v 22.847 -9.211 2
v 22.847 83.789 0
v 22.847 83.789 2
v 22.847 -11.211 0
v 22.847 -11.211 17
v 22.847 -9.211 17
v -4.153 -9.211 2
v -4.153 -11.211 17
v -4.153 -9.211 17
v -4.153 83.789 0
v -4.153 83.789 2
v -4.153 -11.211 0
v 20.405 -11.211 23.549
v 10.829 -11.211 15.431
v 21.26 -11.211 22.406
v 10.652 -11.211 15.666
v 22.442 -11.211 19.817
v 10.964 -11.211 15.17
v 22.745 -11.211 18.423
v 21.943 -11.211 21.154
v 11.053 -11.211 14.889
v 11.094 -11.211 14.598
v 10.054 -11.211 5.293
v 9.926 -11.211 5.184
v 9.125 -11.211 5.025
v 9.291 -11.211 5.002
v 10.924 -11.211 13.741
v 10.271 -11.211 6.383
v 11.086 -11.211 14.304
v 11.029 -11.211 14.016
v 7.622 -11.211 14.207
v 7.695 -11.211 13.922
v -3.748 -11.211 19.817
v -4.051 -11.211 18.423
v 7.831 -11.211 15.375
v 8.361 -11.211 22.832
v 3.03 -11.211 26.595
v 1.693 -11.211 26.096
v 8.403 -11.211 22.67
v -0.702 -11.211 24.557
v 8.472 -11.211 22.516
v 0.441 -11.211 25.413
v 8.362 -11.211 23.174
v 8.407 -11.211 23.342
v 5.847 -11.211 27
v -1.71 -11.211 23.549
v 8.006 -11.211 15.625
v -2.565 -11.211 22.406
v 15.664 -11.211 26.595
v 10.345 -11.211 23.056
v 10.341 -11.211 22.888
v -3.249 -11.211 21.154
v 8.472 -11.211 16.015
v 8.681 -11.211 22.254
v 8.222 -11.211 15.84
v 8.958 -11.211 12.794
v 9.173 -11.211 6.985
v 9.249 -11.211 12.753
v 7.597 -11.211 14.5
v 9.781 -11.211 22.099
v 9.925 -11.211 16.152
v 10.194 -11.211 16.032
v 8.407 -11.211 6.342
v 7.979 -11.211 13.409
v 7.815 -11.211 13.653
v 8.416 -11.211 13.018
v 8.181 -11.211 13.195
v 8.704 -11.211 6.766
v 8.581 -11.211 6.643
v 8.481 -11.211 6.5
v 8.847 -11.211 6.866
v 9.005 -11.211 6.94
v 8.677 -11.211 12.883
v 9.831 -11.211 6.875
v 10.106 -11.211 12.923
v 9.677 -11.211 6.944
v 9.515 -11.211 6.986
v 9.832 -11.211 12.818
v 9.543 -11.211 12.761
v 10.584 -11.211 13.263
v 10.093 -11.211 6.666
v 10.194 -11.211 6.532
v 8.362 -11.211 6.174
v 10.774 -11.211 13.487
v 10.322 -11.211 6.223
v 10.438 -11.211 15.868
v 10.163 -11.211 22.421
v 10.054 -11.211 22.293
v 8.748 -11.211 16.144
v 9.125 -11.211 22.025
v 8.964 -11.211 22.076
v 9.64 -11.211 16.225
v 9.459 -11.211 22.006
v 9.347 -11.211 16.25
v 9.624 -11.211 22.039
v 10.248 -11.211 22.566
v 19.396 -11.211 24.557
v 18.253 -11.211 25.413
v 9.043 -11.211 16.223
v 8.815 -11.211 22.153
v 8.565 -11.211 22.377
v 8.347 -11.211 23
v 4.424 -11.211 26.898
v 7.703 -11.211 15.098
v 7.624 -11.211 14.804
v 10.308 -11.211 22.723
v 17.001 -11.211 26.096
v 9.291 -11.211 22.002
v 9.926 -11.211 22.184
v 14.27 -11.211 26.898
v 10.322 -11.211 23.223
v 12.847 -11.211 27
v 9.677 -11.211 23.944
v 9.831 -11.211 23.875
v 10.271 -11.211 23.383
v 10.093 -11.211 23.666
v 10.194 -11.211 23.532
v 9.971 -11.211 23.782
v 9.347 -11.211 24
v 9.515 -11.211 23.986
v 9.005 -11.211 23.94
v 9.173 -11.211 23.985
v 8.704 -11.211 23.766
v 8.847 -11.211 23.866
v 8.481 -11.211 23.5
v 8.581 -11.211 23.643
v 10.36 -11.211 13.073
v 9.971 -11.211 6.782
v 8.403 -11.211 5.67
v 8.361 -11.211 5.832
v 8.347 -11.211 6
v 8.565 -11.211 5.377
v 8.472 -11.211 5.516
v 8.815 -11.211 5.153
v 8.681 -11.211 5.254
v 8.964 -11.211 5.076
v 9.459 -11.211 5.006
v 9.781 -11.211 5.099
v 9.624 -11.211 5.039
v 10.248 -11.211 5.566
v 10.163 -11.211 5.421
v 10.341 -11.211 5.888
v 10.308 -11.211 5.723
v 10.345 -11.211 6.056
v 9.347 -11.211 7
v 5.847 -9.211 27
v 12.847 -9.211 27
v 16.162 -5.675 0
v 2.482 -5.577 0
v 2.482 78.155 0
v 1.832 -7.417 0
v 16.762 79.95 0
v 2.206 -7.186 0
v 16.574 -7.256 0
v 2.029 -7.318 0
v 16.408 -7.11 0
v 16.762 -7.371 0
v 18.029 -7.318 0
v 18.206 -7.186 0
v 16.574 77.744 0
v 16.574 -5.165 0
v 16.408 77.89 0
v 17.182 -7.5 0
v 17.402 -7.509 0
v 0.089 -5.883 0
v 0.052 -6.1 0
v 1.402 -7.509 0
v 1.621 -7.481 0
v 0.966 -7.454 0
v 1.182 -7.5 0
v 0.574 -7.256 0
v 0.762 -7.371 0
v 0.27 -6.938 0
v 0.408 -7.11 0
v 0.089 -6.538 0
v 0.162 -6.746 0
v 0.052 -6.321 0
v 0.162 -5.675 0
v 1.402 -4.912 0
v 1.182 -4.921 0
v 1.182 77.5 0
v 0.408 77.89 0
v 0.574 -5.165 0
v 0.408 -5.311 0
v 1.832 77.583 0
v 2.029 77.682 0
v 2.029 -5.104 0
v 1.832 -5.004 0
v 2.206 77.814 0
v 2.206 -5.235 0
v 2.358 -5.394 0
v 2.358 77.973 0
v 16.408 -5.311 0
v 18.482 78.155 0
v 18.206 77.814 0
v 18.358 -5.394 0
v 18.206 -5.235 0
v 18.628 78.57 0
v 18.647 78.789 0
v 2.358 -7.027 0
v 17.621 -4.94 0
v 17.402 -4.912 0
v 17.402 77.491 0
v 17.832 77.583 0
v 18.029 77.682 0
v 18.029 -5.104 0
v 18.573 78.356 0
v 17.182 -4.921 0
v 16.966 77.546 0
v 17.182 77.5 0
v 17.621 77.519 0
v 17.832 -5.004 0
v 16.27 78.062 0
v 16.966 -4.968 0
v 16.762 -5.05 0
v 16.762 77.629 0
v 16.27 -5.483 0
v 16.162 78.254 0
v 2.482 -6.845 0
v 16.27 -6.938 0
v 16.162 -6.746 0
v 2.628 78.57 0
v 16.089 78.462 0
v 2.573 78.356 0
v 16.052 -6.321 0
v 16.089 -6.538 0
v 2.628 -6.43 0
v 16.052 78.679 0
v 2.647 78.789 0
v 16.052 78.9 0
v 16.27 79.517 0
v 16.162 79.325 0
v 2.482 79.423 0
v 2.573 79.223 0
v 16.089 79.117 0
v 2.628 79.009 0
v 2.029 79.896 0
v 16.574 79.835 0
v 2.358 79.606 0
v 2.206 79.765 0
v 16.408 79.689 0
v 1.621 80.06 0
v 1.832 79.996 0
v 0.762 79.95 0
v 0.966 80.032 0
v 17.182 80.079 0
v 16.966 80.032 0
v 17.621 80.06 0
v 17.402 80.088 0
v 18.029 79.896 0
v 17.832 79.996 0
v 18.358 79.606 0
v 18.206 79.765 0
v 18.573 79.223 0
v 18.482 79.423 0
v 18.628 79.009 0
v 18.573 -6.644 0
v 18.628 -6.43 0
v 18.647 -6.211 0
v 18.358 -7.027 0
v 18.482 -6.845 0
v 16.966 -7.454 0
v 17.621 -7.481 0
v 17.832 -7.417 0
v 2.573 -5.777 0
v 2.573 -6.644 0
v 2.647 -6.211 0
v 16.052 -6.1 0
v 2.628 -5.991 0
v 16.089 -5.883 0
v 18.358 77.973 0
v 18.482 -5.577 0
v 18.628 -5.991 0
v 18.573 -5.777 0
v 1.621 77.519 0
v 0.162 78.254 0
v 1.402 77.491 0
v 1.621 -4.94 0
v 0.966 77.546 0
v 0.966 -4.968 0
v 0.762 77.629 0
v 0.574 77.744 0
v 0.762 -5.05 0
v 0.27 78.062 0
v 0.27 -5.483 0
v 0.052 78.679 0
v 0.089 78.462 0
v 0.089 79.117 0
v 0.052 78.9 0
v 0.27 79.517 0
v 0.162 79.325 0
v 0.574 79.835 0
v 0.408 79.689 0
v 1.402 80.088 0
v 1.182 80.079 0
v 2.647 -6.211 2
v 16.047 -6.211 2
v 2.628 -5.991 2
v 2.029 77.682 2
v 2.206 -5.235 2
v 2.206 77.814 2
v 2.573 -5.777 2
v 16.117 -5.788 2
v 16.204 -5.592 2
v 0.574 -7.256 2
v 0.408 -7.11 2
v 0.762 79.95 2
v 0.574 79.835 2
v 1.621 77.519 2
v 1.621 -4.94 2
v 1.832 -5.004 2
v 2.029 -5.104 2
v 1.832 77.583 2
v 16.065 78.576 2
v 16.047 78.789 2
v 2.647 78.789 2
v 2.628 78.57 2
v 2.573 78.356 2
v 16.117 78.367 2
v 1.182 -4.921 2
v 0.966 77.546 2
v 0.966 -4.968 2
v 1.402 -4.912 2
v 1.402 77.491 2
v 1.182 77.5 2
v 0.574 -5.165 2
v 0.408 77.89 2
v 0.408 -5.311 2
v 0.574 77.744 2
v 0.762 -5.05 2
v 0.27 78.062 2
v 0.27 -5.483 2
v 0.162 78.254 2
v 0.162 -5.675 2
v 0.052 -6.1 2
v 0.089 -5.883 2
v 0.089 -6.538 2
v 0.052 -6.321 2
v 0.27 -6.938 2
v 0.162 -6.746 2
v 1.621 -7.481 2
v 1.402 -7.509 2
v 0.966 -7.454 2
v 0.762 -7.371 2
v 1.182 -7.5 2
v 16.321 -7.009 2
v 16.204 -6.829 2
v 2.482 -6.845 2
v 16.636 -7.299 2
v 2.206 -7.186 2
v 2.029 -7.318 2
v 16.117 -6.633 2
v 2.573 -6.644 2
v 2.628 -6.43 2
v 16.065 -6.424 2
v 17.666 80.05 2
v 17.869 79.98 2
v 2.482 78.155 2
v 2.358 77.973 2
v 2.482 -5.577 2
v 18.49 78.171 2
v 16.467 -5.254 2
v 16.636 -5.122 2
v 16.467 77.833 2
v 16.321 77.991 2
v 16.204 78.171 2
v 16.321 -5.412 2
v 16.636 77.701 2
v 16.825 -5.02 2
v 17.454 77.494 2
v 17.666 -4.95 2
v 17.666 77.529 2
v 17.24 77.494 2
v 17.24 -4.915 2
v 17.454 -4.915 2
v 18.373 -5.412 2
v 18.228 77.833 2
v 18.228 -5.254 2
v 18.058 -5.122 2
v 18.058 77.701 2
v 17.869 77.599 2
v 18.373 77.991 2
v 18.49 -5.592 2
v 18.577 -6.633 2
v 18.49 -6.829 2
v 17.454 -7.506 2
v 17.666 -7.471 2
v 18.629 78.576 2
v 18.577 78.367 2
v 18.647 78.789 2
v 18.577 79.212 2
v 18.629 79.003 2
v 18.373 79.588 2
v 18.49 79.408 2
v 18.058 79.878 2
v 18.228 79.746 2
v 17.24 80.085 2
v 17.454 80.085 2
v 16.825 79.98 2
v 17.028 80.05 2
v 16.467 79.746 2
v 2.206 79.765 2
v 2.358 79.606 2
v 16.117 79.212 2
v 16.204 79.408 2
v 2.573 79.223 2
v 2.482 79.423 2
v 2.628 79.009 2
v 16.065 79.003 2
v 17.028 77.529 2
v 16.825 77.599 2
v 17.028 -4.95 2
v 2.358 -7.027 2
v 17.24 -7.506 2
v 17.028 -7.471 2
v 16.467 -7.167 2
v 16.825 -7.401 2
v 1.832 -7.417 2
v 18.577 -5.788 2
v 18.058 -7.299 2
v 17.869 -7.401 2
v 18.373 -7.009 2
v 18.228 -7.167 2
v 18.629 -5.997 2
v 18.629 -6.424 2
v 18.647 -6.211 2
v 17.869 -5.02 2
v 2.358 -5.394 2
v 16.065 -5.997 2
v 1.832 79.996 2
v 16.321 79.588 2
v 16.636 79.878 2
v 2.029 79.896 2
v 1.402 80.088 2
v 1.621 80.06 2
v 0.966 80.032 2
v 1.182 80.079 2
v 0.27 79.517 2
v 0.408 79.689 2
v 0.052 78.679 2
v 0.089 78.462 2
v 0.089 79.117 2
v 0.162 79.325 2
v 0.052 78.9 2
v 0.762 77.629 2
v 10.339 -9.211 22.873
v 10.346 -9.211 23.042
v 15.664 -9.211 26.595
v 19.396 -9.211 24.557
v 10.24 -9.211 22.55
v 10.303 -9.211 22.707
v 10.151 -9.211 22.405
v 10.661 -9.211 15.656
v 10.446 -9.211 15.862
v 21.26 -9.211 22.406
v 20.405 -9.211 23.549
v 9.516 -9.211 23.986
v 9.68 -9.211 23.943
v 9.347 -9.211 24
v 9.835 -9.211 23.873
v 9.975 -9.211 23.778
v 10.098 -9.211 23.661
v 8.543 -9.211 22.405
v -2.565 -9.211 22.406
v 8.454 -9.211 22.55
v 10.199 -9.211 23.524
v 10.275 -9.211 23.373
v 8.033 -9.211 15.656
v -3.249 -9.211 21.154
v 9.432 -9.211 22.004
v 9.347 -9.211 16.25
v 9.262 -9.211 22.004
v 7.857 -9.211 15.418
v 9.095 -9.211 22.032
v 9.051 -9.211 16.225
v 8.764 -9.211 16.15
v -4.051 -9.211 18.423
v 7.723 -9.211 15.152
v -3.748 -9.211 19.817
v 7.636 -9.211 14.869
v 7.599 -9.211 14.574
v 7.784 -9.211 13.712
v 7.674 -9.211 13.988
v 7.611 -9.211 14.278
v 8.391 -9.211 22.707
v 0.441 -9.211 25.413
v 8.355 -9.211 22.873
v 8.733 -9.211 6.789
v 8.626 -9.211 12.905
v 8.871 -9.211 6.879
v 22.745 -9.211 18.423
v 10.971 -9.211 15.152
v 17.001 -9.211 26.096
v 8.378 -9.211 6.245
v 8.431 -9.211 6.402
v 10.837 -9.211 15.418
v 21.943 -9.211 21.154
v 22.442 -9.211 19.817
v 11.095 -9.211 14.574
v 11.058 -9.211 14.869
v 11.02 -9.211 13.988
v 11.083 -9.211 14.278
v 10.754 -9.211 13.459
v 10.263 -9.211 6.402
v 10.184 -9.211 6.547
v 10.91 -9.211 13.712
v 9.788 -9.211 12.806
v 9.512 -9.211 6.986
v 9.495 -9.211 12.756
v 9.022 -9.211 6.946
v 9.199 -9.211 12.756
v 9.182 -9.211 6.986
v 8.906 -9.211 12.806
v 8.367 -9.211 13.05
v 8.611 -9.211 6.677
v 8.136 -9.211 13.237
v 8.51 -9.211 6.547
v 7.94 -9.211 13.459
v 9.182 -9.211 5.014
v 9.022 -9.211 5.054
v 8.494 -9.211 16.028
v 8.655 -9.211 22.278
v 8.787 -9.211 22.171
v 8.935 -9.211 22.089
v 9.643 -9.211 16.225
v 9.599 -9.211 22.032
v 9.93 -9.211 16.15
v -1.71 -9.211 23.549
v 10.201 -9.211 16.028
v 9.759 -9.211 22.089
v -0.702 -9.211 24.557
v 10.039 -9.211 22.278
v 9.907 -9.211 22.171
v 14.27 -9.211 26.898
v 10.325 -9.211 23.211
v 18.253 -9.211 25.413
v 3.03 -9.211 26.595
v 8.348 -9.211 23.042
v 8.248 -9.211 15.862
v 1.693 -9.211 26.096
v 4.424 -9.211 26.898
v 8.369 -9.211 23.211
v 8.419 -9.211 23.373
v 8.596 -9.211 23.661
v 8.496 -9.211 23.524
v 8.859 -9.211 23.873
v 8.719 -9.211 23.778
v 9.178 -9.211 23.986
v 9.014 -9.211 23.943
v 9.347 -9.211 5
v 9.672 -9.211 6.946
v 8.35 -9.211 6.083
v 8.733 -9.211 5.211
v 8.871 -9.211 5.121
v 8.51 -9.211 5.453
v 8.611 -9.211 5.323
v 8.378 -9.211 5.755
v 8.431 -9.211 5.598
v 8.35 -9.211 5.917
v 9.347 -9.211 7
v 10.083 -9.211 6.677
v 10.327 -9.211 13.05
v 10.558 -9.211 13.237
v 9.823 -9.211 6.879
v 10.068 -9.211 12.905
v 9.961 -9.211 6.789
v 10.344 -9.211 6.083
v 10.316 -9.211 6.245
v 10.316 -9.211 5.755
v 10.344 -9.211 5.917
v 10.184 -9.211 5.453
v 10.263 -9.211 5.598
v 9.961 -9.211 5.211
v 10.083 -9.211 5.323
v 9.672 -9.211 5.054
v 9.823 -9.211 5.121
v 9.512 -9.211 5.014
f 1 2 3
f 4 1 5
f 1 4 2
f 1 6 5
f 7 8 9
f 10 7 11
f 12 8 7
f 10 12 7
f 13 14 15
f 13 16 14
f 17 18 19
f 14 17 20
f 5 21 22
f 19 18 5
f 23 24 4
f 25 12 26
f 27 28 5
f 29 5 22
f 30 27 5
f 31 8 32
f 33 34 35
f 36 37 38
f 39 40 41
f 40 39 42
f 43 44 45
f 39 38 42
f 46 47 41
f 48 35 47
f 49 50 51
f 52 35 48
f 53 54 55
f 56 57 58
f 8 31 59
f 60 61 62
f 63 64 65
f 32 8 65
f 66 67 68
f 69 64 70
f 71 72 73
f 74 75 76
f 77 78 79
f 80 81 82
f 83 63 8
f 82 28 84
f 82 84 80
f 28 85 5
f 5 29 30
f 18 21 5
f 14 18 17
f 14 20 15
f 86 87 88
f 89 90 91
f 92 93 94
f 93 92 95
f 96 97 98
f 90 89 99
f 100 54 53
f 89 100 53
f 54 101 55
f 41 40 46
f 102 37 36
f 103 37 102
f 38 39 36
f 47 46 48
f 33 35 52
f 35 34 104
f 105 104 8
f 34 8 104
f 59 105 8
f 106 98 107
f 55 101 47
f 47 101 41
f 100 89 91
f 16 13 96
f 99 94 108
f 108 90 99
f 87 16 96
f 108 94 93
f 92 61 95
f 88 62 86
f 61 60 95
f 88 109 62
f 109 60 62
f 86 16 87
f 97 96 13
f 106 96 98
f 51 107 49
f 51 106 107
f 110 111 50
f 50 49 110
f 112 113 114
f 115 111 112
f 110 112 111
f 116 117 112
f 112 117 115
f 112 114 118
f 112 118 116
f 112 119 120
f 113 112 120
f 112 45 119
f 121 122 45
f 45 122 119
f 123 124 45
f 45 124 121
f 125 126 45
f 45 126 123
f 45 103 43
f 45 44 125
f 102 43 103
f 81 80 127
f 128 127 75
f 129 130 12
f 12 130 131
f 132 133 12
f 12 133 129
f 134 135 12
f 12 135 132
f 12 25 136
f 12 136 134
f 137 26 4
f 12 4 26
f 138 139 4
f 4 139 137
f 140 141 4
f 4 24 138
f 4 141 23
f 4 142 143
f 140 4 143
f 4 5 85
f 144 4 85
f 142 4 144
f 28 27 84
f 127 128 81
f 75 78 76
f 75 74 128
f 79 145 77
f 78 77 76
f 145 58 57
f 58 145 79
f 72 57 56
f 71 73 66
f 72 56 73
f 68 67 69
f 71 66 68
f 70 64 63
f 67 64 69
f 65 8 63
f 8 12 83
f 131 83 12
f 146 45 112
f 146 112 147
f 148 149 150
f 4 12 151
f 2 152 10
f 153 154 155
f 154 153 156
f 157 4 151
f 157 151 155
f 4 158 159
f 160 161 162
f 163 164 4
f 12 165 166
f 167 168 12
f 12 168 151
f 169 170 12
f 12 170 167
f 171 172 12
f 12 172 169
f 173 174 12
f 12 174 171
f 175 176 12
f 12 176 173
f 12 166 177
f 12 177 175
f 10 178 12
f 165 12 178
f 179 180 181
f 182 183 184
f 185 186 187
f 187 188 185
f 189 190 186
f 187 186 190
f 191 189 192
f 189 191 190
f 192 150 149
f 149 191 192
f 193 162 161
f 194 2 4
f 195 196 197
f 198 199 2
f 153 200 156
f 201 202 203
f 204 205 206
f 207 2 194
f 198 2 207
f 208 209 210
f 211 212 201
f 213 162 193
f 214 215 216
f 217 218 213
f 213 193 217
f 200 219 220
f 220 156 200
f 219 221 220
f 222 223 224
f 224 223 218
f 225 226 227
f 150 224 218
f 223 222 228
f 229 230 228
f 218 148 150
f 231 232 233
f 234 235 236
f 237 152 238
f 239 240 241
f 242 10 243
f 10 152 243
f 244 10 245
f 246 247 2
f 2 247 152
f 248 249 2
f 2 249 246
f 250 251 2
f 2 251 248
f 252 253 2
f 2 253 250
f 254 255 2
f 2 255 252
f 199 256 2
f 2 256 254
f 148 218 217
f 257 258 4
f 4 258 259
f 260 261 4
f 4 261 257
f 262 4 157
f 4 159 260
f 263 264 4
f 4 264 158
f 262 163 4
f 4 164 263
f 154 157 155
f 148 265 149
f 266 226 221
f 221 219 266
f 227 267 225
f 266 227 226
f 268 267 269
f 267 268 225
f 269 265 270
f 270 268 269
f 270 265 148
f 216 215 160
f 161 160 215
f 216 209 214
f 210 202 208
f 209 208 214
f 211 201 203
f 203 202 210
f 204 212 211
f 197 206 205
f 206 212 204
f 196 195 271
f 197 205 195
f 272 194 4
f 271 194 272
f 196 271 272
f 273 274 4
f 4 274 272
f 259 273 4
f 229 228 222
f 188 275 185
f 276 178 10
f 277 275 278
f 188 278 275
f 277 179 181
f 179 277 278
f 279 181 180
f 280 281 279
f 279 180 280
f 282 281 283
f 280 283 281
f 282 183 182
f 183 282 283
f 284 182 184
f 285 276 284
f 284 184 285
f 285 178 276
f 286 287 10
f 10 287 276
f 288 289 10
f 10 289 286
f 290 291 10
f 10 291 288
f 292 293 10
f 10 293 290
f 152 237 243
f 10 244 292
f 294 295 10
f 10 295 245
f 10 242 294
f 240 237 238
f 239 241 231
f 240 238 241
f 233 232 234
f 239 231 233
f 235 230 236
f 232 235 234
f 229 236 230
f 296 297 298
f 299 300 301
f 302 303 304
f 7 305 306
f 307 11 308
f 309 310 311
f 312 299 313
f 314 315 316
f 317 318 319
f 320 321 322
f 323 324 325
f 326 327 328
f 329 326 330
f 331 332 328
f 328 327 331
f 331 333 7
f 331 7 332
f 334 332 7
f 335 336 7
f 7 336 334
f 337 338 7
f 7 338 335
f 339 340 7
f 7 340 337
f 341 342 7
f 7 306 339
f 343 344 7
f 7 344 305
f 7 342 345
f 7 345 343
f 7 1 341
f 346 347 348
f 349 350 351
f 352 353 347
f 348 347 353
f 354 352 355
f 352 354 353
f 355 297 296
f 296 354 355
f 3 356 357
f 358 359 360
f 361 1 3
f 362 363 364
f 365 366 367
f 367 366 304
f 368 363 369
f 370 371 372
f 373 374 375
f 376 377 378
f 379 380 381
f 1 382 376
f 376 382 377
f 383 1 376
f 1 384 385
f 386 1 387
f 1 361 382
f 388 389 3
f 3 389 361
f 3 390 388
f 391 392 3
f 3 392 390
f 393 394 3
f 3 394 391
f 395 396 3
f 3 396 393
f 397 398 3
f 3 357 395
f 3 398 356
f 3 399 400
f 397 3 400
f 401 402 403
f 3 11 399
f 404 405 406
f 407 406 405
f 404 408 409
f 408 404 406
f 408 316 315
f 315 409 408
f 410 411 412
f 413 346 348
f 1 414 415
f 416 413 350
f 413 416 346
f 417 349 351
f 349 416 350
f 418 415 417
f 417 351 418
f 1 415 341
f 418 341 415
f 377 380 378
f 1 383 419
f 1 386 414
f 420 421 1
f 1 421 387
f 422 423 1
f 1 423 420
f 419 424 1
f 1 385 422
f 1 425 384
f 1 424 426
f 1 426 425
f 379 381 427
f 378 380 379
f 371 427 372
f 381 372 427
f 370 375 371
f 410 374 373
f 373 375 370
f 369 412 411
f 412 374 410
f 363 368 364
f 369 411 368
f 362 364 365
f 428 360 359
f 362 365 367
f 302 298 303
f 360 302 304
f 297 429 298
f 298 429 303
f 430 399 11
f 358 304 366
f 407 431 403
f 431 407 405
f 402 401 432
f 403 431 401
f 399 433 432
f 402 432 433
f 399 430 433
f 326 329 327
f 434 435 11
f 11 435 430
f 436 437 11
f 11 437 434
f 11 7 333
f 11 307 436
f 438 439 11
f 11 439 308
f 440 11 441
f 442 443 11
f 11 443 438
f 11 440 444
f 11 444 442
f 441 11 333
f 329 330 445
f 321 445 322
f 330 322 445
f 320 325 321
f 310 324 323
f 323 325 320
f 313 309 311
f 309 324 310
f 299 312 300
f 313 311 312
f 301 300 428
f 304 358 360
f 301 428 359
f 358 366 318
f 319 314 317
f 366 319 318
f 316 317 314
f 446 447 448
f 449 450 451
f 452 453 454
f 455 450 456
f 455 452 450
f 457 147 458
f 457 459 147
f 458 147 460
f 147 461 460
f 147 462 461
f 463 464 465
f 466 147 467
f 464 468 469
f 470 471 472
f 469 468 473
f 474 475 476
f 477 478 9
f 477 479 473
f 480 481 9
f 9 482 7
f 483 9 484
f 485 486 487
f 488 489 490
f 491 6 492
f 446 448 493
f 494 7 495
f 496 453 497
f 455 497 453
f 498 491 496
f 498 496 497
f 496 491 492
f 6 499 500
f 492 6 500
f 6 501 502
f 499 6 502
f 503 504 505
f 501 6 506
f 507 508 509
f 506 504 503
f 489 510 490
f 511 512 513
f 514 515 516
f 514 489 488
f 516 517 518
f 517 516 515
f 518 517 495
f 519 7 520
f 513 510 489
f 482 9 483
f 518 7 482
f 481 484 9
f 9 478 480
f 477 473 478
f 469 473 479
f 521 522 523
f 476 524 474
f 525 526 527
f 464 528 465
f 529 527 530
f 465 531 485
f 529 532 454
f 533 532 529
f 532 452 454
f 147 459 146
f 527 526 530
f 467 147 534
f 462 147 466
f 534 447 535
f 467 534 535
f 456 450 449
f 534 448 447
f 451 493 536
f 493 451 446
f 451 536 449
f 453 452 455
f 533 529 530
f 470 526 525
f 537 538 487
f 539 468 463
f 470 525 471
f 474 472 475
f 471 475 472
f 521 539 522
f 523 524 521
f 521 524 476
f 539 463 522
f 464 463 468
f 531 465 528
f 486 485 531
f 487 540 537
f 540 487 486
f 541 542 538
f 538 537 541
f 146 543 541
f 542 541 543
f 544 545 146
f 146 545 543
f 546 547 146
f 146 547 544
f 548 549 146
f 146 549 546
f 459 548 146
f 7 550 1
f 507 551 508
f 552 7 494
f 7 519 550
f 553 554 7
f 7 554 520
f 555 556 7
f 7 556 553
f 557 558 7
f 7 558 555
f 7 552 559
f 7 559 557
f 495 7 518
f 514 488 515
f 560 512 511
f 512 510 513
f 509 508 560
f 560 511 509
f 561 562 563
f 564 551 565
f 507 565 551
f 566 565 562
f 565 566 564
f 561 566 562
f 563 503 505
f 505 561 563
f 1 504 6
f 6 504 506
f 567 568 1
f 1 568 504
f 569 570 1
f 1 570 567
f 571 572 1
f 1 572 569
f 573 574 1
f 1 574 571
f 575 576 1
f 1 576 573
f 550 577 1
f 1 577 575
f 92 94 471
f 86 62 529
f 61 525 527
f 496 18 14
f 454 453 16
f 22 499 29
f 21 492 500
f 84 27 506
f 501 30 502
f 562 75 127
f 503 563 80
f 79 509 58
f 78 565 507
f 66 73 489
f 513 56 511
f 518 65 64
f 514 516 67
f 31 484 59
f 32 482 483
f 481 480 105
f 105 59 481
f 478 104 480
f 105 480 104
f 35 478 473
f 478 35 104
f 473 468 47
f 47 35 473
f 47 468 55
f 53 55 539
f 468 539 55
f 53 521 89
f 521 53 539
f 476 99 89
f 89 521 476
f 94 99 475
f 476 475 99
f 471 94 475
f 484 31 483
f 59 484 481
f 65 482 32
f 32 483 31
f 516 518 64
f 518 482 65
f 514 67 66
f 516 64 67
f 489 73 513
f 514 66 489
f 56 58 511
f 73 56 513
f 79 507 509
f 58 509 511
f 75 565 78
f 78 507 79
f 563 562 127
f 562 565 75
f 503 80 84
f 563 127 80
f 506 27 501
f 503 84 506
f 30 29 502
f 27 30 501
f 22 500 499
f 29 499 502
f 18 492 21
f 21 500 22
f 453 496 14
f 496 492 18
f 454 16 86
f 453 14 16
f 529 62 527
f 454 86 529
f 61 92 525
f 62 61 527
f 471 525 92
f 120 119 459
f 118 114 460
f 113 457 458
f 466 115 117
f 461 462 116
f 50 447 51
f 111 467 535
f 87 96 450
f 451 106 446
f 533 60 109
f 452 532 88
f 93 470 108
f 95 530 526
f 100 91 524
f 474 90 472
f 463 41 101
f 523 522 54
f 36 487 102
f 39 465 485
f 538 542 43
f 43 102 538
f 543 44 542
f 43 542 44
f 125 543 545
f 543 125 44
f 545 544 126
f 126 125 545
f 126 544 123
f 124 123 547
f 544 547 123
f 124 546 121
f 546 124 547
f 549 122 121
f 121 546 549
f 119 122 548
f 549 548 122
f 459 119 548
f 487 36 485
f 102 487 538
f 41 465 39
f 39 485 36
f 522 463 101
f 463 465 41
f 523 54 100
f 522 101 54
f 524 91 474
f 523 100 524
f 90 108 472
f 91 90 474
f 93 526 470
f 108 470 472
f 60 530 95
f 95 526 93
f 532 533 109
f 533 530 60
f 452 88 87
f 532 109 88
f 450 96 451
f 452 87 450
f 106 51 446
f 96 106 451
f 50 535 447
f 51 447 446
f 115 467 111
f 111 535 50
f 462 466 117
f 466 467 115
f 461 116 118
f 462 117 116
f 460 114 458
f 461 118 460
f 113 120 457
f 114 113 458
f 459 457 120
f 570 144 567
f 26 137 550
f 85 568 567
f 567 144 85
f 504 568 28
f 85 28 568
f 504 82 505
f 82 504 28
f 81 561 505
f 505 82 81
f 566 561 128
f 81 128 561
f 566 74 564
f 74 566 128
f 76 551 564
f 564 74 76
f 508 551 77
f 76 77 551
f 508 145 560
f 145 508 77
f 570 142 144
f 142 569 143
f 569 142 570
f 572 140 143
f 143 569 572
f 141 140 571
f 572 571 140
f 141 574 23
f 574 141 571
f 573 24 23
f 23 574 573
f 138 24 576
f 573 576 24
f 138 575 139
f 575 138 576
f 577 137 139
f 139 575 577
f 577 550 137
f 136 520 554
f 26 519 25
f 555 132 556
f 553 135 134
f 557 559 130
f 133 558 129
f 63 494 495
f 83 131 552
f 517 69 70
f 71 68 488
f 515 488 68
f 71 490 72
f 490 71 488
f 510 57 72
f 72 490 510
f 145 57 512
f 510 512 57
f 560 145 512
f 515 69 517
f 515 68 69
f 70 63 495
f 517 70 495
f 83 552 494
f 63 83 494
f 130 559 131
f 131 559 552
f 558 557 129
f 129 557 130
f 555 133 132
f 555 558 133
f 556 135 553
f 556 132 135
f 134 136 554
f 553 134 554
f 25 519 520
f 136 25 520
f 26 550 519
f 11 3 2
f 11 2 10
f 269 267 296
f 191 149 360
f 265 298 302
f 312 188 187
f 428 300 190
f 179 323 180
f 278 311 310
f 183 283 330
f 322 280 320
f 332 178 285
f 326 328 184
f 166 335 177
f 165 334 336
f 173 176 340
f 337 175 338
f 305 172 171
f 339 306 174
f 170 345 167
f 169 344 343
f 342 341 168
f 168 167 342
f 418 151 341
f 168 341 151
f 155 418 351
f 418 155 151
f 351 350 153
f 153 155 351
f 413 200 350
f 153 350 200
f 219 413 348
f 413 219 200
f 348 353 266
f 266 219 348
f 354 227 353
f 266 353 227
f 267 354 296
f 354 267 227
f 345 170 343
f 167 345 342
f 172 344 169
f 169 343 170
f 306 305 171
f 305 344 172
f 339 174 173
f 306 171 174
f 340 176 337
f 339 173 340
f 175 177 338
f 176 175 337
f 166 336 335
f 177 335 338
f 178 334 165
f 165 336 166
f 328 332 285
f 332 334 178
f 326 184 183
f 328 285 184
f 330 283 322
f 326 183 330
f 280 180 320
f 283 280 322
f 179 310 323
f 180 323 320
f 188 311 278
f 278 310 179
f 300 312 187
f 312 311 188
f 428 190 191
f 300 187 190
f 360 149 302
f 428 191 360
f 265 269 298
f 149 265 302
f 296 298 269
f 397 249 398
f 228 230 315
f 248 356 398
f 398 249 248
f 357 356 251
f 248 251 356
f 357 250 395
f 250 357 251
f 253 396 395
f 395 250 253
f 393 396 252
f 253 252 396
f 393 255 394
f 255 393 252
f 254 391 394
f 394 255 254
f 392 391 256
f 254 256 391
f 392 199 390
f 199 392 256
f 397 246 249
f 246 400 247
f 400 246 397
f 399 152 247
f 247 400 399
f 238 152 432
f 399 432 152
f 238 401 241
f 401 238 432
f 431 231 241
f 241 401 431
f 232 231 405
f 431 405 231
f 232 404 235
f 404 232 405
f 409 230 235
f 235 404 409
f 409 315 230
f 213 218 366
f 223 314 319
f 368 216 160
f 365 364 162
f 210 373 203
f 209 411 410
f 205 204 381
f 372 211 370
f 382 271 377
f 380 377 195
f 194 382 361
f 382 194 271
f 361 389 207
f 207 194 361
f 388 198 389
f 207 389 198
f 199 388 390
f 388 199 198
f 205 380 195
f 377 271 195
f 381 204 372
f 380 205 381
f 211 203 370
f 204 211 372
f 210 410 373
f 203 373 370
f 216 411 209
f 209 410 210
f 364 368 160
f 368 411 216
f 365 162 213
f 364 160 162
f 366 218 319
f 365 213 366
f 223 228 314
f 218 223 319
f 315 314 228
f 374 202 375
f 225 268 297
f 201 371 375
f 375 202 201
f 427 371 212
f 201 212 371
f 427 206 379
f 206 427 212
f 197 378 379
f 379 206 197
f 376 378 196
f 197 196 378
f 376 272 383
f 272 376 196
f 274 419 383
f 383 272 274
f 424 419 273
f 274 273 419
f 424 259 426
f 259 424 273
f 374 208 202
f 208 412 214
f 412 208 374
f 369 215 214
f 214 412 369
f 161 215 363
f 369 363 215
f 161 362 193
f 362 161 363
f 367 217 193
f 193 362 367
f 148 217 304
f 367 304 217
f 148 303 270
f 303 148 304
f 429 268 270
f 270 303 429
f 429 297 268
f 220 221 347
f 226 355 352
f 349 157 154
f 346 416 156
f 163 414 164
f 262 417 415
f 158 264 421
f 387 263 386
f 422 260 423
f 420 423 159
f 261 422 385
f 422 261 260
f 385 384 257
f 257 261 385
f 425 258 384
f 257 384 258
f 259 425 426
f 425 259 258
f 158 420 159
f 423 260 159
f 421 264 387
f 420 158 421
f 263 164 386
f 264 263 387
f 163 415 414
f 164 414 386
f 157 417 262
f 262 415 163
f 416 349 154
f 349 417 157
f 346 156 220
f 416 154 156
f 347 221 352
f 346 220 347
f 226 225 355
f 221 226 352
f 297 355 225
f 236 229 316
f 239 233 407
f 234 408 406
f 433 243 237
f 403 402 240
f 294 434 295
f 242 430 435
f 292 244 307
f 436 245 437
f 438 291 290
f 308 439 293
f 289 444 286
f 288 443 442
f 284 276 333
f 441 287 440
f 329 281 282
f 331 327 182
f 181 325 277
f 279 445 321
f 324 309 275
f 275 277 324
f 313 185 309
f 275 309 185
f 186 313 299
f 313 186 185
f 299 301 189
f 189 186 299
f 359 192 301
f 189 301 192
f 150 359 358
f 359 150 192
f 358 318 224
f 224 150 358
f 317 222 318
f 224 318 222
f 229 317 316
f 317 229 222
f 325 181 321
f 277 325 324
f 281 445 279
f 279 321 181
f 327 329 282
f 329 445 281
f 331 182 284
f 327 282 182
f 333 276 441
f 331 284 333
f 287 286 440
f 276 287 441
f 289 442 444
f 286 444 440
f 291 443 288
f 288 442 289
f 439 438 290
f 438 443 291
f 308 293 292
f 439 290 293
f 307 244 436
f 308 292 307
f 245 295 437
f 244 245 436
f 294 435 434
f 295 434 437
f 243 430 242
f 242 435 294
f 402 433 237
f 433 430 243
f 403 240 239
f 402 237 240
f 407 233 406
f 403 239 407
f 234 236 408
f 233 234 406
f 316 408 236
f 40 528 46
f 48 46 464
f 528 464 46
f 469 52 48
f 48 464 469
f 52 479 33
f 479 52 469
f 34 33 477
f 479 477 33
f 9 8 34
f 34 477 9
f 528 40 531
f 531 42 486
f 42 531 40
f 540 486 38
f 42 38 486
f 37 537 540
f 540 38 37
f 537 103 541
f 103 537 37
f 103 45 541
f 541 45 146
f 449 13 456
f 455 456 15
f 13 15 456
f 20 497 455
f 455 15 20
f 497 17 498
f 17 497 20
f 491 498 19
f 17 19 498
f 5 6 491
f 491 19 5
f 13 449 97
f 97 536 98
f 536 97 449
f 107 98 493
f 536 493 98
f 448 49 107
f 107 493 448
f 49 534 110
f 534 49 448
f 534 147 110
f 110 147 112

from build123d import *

# Parameters (mm, degrees)
SKETCH1_W           = 27
SKETCH1_H           = 27
BOSS_EXTRUDE1_DEPTH = 27
CUT_EXTRUDE1_REACH  = 43.32
SKETCH2_W           = 25
SKETCH2_H           = 25
CUT_EXTRUDE2_REACH  = 45.313
SKETCH3_R           = 1.75
SKETCH3_R_2         = 1
SKETCH4_W           = 27
SKETCH4_H           = 68
BOSS_EXTRUDE2_DEPTH = 2
CUT_EXTRUDE3_REACH  = 92.375
SKETCH5_R           = 1.3
FILLET1_R           = 10


with BuildPart() as part:
    # Sketch1 → Boss-Extrude1 (new body)
    with BuildSketch(Plane(origin=(0, 0, 0), x_dir=(0, 1, 0), z_dir=(0, 0, 1))):
        with Locations((2.289473684, -9.347039474)):
            Rectangle(SKETCH1_W, SKETCH1_H)
    extrude(amount=BOSS_EXTRUDE1_DEPTH)

    # Sketch2 → Cut-Extrude1 (cut, up to next)
    with BuildSketch(Plane.YZ.offset(22.847039474), mode=Mode.PRIVATE) as cut_extrude1_sk1:
        with Locations((3.289473684, 14.5)):
            Rectangle(SKETCH2_W, SKETCH2_H)
    cut_extrude1_tool1 = extrude(cut_extrude1_sk1.sketch, amount=-CUT_EXTRUDE1_REACH, mode=Mode.PRIVATE) & part.part
    add(cut_extrude1_tool1.solids().sort_by_distance((22.847039, 3.289474, 14.5))[0], mode=Mode.SUBTRACT)

    # Sketch3 → Cut-Extrude2 (cut, up to next)
    with BuildSketch(Plane(origin=(0, -9.210526316, 0), x_dir=(-1, 0, 0), z_dir=(0, 1, 0)), mode=Mode.PRIVATE) as cut_extrude2_sk1:
        with Locations(Location((-9.347039474, 14.5, 0), (0, 0, 90))):
            Circle(SKETCH3_R)
    cut_extrude2_tool1 = extrude(cut_extrude2_sk1.sketch, amount=-CUT_EXTRUDE2_REACH, mode=Mode.PRIVATE) & part.part
    # Sketch3 → Cut-Extrude2 (cut, up to next)
    with BuildSketch(Plane(origin=(0, -9.210526316, 0), x_dir=(-1, 0, 0), z_dir=(0, 1, 0)), mode=Mode.PRIVATE) as cut_extrude2_sk2:
        with Locations(Location((-9.347039474, 23, 0), (0, 0, 90))):
            Circle(SKETCH3_R_2)
    cut_extrude2_tool2 = extrude(cut_extrude2_sk2.sketch, amount=-CUT_EXTRUDE2_REACH, mode=Mode.PRIVATE) & part.part
    # Sketch3 → Cut-Extrude2 (cut, up to next)
    with BuildSketch(Plane(origin=(0, -9.210526316, 0), x_dir=(-1, 0, 0), z_dir=(0, 1, 0)), mode=Mode.PRIVATE) as cut_extrude2_sk3:
        with Locations((-9.347039474, 6)):
            Circle(SKETCH3_R_2)
    cut_extrude2_tool3 = extrude(cut_extrude2_sk3.sketch, amount=-CUT_EXTRUDE2_REACH, mode=Mode.PRIVATE) & part.part
    add(cut_extrude2_tool1.solids().sort_by_distance((9.347039, -9.210526, 14.5))[0], mode=Mode.SUBTRACT)
    add(cut_extrude2_tool2.solids().sort_by_distance((9.347039, -9.210526, 23))[0], mode=Mode.SUBTRACT)
    add(cut_extrude2_tool3.solids().sort_by_distance((9.347039, -9.210526, 6))[0], mode=Mode.SUBTRACT)

    # Sketch4 → Boss-Extrude2 (add)
    with BuildSketch(Plane.XY.offset(2)):
        with Locations((9.347039474, 49.789473684)):
            Rectangle(SKETCH4_W, SKETCH4_H)
    extrude(amount=-BOSS_EXTRUDE2_DEPTH)

    # Sketch5 → Cut-Extrude3 (cut, up to next)
    with BuildSketch(Plane.XY.offset(2), mode=Mode.PRIVATE) as cut_extrude3_sk1:
        with Locations((1.347039474, -6.210526316)):
            Circle(SKETCH5_R)
    cut_extrude3_tool1 = extrude(cut_extrude3_sk1.sketch, amount=-CUT_EXTRUDE3_REACH, mode=Mode.PRIVATE) & part.part
    # Sketch5 → Cut-Extrude3 (cut, up to next)
    with BuildSketch(Plane.XY.offset(2), mode=Mode.PRIVATE) as cut_extrude3_sk2:
        with Locations((1.347039474, 78.789473684)):
            Circle(SKETCH5_R)
    cut_extrude3_tool2 = extrude(cut_extrude3_sk2.sketch, amount=-CUT_EXTRUDE3_REACH, mode=Mode.PRIVATE) & part.part
    # Sketch5 → Cut-Extrude3 (cut, up to next)
    with BuildSketch(Plane.XY.offset(2), mode=Mode.PRIVATE) as cut_extrude3_sk3:
        with Locations((17.347039474, -6.210526316)):
            Circle(SKETCH5_R)
    cut_extrude3_tool3 = extrude(cut_extrude3_sk3.sketch, amount=-CUT_EXTRUDE3_REACH, mode=Mode.PRIVATE) & part.part
    # Sketch5 → Cut-Extrude3 (cut, up to next)
    with BuildSketch(Plane.XY.offset(2), mode=Mode.PRIVATE) as cut_extrude3_sk4:
        with Locations((17.347039474, 78.789473684)):
            Circle(SKETCH5_R)
    cut_extrude3_tool4 = extrude(cut_extrude3_sk4.sketch, amount=-CUT_EXTRUDE3_REACH, mode=Mode.PRIVATE) & part.part
    add(cut_extrude3_tool1.solids().sort_by_distance((1.347039, -6.210526, 2))[0], mode=Mode.SUBTRACT)
    add(cut_extrude3_tool2.solids().sort_by_distance((1.347039, 78.789474, 2))[0], mode=Mode.SUBTRACT)
    add(cut_extrude3_tool3.solids().sort_by_distance((17.347039, -6.210526, 2))[0], mode=Mode.SUBTRACT)
    add(cut_extrude3_tool4.solids().sort_by_distance((17.347039, 78.789474, 2))[0], mode=Mode.SUBTRACT)

    # Fillet1
    fillet1_edges = [part.edges().sort_by_distance(p)[0] for p in [
        (-4.152960526, -10.210526316, 27),
        (22.847039474, -10.210526316, 27),
    ]]
    fillet(fillet1_edges, radius=FILLET1_R)


solid = part.part
